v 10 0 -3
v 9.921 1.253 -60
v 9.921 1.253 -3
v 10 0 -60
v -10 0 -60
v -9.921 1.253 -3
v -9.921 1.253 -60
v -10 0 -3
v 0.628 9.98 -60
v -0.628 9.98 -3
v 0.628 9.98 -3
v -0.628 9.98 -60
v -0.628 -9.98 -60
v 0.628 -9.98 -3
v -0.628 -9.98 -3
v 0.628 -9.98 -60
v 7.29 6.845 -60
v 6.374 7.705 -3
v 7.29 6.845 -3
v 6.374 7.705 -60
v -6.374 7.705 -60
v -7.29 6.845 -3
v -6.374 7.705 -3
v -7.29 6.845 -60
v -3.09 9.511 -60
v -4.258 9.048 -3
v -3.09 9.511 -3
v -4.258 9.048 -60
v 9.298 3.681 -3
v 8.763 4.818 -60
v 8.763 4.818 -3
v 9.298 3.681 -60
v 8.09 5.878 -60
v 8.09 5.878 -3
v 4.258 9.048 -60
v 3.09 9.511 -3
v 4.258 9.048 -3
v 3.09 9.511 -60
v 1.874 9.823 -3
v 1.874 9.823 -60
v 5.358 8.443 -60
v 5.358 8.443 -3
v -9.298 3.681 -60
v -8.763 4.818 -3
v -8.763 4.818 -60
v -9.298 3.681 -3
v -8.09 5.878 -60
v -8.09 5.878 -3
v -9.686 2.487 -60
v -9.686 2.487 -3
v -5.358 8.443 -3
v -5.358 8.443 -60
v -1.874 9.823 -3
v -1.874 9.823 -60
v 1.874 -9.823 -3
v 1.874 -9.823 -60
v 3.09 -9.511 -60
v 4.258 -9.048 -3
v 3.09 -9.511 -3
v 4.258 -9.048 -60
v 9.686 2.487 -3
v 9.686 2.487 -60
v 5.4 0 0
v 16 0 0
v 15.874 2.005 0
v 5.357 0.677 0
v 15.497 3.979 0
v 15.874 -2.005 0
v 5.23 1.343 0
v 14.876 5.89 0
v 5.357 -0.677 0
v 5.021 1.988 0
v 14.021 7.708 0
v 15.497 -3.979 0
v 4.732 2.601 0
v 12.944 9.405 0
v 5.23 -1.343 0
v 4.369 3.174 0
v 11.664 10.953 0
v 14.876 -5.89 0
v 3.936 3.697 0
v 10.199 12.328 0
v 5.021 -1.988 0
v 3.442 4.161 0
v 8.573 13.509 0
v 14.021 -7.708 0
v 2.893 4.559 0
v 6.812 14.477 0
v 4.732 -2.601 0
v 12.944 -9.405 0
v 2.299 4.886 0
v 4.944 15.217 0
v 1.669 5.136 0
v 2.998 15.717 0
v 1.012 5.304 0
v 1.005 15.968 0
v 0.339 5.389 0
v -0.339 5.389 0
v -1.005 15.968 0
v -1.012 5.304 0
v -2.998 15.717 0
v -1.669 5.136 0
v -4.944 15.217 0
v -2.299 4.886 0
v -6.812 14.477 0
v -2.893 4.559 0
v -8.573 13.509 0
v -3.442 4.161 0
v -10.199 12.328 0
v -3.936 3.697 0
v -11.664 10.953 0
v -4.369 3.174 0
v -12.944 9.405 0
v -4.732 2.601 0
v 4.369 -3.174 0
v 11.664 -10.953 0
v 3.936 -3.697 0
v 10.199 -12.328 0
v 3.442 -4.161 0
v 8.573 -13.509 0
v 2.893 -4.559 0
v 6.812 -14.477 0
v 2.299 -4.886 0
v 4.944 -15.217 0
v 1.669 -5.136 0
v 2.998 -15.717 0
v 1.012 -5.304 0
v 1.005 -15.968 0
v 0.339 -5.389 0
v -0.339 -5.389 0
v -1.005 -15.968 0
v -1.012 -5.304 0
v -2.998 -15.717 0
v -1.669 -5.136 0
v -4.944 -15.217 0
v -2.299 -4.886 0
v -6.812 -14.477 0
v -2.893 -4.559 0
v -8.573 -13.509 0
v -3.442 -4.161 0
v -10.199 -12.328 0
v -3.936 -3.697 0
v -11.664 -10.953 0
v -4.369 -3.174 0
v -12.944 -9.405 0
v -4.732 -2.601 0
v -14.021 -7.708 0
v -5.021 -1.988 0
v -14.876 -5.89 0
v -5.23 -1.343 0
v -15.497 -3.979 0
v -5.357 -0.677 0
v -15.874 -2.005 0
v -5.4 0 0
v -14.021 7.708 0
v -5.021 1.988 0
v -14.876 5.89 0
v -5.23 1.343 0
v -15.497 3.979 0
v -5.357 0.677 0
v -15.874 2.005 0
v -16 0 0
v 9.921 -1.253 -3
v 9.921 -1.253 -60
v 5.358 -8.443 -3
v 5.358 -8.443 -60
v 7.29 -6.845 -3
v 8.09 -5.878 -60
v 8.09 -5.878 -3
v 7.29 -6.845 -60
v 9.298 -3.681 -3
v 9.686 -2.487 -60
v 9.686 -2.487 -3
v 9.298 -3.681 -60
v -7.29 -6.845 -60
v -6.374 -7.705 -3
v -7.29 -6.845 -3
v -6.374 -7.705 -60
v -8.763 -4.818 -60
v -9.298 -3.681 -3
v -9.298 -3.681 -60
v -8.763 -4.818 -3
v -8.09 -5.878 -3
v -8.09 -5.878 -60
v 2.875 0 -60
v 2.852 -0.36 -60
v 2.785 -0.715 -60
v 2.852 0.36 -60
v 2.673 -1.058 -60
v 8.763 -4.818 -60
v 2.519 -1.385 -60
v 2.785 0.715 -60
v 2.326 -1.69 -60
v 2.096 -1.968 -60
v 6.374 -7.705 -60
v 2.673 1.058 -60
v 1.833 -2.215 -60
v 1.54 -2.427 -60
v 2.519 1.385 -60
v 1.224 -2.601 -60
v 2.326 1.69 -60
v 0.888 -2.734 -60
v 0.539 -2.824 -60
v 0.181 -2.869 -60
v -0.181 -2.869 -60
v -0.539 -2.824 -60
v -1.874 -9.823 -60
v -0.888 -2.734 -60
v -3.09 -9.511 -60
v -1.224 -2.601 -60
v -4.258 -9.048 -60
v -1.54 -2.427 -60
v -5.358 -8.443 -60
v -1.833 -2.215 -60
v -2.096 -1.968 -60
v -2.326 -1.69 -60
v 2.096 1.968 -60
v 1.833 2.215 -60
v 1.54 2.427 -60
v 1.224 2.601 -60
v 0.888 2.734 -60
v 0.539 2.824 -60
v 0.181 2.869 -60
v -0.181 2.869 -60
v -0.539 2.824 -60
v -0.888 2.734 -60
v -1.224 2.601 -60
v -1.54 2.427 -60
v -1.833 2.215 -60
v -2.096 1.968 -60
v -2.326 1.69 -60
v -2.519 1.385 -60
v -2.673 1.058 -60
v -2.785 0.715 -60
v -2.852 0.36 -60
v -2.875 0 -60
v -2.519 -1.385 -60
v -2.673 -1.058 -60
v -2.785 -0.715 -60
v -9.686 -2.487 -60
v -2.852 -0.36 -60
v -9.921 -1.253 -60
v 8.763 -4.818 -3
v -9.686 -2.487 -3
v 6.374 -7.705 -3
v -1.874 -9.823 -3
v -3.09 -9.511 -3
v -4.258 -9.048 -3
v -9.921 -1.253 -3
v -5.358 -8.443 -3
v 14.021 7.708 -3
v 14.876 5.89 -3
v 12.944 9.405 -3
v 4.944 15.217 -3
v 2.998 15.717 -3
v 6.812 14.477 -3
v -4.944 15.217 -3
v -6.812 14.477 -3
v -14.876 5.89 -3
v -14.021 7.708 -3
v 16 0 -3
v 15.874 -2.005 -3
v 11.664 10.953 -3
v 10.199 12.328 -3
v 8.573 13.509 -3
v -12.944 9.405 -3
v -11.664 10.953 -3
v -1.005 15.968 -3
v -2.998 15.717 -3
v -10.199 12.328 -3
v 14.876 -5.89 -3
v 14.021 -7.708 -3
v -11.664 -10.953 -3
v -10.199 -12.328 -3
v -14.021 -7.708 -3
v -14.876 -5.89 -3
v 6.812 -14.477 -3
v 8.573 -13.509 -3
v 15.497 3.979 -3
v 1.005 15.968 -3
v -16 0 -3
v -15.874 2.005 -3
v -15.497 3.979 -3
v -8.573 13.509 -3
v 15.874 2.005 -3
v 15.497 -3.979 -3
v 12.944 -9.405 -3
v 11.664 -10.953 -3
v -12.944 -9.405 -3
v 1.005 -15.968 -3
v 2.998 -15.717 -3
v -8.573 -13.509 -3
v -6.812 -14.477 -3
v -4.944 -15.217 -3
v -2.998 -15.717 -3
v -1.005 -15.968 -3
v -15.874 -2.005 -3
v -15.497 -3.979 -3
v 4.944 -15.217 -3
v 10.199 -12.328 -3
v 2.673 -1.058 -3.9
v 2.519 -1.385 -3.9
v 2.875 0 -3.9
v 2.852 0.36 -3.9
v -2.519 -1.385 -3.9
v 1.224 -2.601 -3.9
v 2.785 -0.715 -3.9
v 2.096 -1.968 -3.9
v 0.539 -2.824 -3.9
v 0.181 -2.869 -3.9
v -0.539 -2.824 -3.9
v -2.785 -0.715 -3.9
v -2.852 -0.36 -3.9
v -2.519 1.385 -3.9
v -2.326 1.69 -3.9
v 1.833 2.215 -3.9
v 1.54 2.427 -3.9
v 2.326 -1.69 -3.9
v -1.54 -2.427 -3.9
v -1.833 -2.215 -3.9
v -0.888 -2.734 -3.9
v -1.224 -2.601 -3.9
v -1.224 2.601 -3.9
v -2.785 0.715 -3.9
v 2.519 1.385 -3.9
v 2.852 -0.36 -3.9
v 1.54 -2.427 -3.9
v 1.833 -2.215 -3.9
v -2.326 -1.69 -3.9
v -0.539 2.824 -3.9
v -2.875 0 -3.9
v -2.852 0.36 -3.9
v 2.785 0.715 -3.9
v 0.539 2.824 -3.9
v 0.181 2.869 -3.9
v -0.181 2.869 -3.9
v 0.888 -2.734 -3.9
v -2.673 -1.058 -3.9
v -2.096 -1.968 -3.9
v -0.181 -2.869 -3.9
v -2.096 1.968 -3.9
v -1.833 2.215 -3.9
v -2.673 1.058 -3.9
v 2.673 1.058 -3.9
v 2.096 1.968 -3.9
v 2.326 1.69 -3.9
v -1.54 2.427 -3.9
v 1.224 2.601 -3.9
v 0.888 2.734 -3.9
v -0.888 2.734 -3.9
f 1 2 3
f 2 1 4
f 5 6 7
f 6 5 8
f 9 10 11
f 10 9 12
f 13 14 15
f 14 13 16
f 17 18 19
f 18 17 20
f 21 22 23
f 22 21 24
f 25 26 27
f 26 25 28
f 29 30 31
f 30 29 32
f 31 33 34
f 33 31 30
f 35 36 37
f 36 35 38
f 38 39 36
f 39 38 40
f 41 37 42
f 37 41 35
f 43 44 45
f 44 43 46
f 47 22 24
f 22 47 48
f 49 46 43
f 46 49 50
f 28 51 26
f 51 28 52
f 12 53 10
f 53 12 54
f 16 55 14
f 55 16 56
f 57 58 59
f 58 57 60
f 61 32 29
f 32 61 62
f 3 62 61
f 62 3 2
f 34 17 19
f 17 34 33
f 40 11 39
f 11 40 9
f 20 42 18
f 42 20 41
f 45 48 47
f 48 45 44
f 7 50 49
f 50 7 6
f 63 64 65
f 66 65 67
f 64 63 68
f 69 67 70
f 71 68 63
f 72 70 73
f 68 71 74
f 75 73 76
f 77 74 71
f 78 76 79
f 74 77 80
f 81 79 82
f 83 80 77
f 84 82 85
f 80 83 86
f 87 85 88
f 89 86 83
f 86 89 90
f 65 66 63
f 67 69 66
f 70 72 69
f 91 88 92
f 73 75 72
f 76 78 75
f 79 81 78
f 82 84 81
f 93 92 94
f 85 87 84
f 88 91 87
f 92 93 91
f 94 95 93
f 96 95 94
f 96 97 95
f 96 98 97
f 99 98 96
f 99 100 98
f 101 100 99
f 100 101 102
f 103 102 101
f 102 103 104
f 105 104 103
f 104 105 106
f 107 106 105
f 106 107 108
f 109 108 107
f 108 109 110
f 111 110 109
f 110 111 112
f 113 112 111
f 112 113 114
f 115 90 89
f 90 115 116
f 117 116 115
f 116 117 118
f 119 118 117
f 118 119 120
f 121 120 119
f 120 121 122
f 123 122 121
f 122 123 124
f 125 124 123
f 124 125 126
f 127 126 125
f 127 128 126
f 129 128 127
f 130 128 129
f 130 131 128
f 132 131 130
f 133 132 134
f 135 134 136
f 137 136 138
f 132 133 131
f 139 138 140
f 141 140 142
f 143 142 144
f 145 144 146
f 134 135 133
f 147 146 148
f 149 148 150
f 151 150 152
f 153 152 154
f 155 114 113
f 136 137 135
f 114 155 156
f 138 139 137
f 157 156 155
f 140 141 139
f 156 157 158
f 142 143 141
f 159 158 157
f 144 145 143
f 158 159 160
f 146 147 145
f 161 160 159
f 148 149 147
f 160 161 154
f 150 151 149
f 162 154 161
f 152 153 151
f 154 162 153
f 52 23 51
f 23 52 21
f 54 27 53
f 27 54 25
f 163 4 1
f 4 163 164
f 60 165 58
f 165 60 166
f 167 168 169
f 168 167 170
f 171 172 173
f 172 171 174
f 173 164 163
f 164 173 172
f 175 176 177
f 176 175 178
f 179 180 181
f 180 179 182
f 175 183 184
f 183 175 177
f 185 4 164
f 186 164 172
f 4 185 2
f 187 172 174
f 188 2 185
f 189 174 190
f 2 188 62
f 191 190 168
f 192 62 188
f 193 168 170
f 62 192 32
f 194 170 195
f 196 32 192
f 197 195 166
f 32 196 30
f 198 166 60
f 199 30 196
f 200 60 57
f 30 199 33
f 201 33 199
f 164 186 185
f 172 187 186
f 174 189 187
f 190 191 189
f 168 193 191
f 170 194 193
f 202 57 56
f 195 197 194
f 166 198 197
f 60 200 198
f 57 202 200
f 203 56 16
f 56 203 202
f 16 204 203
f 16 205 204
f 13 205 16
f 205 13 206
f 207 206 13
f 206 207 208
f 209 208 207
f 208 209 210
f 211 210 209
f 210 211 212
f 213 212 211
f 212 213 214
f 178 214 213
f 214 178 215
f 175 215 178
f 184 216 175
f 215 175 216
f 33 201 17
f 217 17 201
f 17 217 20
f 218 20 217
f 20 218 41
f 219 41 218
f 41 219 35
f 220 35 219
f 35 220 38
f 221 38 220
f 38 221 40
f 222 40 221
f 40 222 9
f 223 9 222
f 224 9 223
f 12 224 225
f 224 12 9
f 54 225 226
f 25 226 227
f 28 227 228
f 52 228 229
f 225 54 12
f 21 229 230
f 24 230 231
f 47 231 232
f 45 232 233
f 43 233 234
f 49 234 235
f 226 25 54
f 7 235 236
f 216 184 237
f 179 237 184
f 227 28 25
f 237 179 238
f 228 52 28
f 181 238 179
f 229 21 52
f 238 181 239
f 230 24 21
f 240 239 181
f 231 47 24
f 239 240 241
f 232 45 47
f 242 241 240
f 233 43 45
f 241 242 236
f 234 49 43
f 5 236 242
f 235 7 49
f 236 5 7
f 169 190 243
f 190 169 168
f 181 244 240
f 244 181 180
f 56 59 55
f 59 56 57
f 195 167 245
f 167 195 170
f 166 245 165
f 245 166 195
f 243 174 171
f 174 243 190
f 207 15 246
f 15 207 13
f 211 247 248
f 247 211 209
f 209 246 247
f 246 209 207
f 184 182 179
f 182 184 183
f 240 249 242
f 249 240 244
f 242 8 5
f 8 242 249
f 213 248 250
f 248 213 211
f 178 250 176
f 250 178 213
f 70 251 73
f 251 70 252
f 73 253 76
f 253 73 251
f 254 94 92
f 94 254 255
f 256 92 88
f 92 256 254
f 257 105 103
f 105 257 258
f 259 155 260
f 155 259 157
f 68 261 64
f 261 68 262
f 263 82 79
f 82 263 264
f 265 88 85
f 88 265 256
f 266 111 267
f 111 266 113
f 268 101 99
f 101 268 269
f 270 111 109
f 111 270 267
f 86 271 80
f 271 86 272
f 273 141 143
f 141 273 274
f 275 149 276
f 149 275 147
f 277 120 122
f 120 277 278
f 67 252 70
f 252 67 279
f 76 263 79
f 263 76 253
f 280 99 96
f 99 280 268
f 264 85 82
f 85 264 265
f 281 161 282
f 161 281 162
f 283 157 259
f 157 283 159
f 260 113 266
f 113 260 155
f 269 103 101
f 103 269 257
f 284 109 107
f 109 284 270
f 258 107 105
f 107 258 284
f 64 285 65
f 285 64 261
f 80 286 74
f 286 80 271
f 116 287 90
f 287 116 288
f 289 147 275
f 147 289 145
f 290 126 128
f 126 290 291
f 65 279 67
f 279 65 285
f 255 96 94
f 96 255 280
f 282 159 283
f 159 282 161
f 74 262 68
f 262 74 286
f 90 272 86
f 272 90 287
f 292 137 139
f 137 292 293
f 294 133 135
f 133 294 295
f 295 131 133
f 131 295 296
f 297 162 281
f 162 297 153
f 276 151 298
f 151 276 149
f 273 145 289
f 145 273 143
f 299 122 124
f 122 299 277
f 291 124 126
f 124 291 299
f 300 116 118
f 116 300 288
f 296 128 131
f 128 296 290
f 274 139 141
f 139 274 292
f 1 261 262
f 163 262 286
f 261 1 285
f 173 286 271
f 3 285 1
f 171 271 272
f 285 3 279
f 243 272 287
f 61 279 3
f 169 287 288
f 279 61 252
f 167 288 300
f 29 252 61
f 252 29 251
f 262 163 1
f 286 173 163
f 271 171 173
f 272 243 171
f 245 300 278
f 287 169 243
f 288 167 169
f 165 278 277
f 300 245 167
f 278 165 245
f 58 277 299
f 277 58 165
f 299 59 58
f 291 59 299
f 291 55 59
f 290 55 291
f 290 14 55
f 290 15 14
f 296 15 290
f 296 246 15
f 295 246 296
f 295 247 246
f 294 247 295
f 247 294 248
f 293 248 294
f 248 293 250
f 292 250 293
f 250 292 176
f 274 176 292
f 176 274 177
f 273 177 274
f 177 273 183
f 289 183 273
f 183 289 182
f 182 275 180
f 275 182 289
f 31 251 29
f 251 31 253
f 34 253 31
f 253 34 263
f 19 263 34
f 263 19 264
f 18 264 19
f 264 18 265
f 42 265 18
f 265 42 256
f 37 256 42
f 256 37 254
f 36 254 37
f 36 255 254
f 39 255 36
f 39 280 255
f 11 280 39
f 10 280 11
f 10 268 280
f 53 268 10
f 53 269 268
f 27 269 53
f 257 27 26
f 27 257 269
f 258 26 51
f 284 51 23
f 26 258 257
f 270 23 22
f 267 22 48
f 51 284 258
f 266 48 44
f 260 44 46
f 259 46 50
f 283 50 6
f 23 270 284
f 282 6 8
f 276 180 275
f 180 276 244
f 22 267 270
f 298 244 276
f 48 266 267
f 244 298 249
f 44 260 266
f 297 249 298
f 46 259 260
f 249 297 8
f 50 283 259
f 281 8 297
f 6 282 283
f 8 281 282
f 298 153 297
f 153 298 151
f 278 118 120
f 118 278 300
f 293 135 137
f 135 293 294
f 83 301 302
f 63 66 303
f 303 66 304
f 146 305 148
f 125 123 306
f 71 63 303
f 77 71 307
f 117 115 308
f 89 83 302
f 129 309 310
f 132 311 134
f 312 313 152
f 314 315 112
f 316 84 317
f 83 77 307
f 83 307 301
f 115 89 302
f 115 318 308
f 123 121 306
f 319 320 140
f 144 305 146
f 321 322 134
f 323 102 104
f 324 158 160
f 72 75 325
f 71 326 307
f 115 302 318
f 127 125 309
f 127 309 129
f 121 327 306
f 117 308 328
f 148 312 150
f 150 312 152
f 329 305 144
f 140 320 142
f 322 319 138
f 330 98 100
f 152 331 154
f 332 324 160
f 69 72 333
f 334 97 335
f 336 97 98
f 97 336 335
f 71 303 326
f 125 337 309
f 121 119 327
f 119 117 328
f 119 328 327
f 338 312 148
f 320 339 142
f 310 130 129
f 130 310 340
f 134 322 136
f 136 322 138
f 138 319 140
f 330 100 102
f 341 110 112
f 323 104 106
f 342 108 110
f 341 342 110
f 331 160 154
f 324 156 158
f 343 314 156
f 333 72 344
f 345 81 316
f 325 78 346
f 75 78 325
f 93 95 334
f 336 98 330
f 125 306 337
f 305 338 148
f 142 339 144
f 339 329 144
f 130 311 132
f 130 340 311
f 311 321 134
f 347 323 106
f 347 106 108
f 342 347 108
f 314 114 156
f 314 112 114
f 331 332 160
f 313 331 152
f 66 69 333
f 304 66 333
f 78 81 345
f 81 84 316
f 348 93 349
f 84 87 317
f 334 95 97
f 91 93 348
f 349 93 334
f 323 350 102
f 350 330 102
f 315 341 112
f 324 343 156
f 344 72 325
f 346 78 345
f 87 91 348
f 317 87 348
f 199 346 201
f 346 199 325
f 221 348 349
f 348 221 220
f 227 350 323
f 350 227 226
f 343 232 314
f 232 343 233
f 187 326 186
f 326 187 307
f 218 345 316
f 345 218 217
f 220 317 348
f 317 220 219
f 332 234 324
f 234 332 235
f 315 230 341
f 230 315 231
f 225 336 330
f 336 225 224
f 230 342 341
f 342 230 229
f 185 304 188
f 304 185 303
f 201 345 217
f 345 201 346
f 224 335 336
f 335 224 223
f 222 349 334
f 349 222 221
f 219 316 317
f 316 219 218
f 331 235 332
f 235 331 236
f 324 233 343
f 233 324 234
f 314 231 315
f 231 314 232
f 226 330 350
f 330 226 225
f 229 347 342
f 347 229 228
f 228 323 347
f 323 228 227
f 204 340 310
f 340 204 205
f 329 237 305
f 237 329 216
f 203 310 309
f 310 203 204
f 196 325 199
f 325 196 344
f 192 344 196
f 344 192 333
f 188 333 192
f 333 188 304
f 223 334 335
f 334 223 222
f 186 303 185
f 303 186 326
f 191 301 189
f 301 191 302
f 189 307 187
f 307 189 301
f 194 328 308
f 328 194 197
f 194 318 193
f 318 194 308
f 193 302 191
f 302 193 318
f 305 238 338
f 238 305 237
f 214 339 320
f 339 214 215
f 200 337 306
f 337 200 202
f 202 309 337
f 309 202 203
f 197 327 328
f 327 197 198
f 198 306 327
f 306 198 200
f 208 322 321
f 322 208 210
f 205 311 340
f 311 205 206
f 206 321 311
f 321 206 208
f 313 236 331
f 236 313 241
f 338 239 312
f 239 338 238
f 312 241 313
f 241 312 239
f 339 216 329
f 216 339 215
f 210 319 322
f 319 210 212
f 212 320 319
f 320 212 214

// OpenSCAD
$fn = 50;


difference() {
	union() {
		translate(v = [0, 0, -60.0000000000]) {
			cylinder(h = 60, r = 10.0000000000);
		}
		translate(v = [0, 0, -3.0000000000]) {
			cylinder(h = 3, r = 16.0000000000);
		}
	}
	union() {
		translate(v = [0, 0, 0]) {
			rotate(a = [0, 0, 0]) {
				difference() {
					union() {
						#translate(v = [0, 0, -60.0000000000]) {
							cylinder(h = 60, r = 2.6000000000);
						}
						#translate(v = [0, 0, -3.9000000000]) {
							cylinder(h = 3.9000000000, r1 = 2.8750000000, r2 = 5.4000000000);
						}
						#translate(v = [0, 0, -60.0000000000]) {
							cylinder(h = 60, r = 2.8750000000);
						}
						#translate(v = [0, 0, -60.0000000000]) {
							cylinder(h = 60, r = 2.6000000000);
						}
					}
					union();
				}
			}
		}
	}
}
